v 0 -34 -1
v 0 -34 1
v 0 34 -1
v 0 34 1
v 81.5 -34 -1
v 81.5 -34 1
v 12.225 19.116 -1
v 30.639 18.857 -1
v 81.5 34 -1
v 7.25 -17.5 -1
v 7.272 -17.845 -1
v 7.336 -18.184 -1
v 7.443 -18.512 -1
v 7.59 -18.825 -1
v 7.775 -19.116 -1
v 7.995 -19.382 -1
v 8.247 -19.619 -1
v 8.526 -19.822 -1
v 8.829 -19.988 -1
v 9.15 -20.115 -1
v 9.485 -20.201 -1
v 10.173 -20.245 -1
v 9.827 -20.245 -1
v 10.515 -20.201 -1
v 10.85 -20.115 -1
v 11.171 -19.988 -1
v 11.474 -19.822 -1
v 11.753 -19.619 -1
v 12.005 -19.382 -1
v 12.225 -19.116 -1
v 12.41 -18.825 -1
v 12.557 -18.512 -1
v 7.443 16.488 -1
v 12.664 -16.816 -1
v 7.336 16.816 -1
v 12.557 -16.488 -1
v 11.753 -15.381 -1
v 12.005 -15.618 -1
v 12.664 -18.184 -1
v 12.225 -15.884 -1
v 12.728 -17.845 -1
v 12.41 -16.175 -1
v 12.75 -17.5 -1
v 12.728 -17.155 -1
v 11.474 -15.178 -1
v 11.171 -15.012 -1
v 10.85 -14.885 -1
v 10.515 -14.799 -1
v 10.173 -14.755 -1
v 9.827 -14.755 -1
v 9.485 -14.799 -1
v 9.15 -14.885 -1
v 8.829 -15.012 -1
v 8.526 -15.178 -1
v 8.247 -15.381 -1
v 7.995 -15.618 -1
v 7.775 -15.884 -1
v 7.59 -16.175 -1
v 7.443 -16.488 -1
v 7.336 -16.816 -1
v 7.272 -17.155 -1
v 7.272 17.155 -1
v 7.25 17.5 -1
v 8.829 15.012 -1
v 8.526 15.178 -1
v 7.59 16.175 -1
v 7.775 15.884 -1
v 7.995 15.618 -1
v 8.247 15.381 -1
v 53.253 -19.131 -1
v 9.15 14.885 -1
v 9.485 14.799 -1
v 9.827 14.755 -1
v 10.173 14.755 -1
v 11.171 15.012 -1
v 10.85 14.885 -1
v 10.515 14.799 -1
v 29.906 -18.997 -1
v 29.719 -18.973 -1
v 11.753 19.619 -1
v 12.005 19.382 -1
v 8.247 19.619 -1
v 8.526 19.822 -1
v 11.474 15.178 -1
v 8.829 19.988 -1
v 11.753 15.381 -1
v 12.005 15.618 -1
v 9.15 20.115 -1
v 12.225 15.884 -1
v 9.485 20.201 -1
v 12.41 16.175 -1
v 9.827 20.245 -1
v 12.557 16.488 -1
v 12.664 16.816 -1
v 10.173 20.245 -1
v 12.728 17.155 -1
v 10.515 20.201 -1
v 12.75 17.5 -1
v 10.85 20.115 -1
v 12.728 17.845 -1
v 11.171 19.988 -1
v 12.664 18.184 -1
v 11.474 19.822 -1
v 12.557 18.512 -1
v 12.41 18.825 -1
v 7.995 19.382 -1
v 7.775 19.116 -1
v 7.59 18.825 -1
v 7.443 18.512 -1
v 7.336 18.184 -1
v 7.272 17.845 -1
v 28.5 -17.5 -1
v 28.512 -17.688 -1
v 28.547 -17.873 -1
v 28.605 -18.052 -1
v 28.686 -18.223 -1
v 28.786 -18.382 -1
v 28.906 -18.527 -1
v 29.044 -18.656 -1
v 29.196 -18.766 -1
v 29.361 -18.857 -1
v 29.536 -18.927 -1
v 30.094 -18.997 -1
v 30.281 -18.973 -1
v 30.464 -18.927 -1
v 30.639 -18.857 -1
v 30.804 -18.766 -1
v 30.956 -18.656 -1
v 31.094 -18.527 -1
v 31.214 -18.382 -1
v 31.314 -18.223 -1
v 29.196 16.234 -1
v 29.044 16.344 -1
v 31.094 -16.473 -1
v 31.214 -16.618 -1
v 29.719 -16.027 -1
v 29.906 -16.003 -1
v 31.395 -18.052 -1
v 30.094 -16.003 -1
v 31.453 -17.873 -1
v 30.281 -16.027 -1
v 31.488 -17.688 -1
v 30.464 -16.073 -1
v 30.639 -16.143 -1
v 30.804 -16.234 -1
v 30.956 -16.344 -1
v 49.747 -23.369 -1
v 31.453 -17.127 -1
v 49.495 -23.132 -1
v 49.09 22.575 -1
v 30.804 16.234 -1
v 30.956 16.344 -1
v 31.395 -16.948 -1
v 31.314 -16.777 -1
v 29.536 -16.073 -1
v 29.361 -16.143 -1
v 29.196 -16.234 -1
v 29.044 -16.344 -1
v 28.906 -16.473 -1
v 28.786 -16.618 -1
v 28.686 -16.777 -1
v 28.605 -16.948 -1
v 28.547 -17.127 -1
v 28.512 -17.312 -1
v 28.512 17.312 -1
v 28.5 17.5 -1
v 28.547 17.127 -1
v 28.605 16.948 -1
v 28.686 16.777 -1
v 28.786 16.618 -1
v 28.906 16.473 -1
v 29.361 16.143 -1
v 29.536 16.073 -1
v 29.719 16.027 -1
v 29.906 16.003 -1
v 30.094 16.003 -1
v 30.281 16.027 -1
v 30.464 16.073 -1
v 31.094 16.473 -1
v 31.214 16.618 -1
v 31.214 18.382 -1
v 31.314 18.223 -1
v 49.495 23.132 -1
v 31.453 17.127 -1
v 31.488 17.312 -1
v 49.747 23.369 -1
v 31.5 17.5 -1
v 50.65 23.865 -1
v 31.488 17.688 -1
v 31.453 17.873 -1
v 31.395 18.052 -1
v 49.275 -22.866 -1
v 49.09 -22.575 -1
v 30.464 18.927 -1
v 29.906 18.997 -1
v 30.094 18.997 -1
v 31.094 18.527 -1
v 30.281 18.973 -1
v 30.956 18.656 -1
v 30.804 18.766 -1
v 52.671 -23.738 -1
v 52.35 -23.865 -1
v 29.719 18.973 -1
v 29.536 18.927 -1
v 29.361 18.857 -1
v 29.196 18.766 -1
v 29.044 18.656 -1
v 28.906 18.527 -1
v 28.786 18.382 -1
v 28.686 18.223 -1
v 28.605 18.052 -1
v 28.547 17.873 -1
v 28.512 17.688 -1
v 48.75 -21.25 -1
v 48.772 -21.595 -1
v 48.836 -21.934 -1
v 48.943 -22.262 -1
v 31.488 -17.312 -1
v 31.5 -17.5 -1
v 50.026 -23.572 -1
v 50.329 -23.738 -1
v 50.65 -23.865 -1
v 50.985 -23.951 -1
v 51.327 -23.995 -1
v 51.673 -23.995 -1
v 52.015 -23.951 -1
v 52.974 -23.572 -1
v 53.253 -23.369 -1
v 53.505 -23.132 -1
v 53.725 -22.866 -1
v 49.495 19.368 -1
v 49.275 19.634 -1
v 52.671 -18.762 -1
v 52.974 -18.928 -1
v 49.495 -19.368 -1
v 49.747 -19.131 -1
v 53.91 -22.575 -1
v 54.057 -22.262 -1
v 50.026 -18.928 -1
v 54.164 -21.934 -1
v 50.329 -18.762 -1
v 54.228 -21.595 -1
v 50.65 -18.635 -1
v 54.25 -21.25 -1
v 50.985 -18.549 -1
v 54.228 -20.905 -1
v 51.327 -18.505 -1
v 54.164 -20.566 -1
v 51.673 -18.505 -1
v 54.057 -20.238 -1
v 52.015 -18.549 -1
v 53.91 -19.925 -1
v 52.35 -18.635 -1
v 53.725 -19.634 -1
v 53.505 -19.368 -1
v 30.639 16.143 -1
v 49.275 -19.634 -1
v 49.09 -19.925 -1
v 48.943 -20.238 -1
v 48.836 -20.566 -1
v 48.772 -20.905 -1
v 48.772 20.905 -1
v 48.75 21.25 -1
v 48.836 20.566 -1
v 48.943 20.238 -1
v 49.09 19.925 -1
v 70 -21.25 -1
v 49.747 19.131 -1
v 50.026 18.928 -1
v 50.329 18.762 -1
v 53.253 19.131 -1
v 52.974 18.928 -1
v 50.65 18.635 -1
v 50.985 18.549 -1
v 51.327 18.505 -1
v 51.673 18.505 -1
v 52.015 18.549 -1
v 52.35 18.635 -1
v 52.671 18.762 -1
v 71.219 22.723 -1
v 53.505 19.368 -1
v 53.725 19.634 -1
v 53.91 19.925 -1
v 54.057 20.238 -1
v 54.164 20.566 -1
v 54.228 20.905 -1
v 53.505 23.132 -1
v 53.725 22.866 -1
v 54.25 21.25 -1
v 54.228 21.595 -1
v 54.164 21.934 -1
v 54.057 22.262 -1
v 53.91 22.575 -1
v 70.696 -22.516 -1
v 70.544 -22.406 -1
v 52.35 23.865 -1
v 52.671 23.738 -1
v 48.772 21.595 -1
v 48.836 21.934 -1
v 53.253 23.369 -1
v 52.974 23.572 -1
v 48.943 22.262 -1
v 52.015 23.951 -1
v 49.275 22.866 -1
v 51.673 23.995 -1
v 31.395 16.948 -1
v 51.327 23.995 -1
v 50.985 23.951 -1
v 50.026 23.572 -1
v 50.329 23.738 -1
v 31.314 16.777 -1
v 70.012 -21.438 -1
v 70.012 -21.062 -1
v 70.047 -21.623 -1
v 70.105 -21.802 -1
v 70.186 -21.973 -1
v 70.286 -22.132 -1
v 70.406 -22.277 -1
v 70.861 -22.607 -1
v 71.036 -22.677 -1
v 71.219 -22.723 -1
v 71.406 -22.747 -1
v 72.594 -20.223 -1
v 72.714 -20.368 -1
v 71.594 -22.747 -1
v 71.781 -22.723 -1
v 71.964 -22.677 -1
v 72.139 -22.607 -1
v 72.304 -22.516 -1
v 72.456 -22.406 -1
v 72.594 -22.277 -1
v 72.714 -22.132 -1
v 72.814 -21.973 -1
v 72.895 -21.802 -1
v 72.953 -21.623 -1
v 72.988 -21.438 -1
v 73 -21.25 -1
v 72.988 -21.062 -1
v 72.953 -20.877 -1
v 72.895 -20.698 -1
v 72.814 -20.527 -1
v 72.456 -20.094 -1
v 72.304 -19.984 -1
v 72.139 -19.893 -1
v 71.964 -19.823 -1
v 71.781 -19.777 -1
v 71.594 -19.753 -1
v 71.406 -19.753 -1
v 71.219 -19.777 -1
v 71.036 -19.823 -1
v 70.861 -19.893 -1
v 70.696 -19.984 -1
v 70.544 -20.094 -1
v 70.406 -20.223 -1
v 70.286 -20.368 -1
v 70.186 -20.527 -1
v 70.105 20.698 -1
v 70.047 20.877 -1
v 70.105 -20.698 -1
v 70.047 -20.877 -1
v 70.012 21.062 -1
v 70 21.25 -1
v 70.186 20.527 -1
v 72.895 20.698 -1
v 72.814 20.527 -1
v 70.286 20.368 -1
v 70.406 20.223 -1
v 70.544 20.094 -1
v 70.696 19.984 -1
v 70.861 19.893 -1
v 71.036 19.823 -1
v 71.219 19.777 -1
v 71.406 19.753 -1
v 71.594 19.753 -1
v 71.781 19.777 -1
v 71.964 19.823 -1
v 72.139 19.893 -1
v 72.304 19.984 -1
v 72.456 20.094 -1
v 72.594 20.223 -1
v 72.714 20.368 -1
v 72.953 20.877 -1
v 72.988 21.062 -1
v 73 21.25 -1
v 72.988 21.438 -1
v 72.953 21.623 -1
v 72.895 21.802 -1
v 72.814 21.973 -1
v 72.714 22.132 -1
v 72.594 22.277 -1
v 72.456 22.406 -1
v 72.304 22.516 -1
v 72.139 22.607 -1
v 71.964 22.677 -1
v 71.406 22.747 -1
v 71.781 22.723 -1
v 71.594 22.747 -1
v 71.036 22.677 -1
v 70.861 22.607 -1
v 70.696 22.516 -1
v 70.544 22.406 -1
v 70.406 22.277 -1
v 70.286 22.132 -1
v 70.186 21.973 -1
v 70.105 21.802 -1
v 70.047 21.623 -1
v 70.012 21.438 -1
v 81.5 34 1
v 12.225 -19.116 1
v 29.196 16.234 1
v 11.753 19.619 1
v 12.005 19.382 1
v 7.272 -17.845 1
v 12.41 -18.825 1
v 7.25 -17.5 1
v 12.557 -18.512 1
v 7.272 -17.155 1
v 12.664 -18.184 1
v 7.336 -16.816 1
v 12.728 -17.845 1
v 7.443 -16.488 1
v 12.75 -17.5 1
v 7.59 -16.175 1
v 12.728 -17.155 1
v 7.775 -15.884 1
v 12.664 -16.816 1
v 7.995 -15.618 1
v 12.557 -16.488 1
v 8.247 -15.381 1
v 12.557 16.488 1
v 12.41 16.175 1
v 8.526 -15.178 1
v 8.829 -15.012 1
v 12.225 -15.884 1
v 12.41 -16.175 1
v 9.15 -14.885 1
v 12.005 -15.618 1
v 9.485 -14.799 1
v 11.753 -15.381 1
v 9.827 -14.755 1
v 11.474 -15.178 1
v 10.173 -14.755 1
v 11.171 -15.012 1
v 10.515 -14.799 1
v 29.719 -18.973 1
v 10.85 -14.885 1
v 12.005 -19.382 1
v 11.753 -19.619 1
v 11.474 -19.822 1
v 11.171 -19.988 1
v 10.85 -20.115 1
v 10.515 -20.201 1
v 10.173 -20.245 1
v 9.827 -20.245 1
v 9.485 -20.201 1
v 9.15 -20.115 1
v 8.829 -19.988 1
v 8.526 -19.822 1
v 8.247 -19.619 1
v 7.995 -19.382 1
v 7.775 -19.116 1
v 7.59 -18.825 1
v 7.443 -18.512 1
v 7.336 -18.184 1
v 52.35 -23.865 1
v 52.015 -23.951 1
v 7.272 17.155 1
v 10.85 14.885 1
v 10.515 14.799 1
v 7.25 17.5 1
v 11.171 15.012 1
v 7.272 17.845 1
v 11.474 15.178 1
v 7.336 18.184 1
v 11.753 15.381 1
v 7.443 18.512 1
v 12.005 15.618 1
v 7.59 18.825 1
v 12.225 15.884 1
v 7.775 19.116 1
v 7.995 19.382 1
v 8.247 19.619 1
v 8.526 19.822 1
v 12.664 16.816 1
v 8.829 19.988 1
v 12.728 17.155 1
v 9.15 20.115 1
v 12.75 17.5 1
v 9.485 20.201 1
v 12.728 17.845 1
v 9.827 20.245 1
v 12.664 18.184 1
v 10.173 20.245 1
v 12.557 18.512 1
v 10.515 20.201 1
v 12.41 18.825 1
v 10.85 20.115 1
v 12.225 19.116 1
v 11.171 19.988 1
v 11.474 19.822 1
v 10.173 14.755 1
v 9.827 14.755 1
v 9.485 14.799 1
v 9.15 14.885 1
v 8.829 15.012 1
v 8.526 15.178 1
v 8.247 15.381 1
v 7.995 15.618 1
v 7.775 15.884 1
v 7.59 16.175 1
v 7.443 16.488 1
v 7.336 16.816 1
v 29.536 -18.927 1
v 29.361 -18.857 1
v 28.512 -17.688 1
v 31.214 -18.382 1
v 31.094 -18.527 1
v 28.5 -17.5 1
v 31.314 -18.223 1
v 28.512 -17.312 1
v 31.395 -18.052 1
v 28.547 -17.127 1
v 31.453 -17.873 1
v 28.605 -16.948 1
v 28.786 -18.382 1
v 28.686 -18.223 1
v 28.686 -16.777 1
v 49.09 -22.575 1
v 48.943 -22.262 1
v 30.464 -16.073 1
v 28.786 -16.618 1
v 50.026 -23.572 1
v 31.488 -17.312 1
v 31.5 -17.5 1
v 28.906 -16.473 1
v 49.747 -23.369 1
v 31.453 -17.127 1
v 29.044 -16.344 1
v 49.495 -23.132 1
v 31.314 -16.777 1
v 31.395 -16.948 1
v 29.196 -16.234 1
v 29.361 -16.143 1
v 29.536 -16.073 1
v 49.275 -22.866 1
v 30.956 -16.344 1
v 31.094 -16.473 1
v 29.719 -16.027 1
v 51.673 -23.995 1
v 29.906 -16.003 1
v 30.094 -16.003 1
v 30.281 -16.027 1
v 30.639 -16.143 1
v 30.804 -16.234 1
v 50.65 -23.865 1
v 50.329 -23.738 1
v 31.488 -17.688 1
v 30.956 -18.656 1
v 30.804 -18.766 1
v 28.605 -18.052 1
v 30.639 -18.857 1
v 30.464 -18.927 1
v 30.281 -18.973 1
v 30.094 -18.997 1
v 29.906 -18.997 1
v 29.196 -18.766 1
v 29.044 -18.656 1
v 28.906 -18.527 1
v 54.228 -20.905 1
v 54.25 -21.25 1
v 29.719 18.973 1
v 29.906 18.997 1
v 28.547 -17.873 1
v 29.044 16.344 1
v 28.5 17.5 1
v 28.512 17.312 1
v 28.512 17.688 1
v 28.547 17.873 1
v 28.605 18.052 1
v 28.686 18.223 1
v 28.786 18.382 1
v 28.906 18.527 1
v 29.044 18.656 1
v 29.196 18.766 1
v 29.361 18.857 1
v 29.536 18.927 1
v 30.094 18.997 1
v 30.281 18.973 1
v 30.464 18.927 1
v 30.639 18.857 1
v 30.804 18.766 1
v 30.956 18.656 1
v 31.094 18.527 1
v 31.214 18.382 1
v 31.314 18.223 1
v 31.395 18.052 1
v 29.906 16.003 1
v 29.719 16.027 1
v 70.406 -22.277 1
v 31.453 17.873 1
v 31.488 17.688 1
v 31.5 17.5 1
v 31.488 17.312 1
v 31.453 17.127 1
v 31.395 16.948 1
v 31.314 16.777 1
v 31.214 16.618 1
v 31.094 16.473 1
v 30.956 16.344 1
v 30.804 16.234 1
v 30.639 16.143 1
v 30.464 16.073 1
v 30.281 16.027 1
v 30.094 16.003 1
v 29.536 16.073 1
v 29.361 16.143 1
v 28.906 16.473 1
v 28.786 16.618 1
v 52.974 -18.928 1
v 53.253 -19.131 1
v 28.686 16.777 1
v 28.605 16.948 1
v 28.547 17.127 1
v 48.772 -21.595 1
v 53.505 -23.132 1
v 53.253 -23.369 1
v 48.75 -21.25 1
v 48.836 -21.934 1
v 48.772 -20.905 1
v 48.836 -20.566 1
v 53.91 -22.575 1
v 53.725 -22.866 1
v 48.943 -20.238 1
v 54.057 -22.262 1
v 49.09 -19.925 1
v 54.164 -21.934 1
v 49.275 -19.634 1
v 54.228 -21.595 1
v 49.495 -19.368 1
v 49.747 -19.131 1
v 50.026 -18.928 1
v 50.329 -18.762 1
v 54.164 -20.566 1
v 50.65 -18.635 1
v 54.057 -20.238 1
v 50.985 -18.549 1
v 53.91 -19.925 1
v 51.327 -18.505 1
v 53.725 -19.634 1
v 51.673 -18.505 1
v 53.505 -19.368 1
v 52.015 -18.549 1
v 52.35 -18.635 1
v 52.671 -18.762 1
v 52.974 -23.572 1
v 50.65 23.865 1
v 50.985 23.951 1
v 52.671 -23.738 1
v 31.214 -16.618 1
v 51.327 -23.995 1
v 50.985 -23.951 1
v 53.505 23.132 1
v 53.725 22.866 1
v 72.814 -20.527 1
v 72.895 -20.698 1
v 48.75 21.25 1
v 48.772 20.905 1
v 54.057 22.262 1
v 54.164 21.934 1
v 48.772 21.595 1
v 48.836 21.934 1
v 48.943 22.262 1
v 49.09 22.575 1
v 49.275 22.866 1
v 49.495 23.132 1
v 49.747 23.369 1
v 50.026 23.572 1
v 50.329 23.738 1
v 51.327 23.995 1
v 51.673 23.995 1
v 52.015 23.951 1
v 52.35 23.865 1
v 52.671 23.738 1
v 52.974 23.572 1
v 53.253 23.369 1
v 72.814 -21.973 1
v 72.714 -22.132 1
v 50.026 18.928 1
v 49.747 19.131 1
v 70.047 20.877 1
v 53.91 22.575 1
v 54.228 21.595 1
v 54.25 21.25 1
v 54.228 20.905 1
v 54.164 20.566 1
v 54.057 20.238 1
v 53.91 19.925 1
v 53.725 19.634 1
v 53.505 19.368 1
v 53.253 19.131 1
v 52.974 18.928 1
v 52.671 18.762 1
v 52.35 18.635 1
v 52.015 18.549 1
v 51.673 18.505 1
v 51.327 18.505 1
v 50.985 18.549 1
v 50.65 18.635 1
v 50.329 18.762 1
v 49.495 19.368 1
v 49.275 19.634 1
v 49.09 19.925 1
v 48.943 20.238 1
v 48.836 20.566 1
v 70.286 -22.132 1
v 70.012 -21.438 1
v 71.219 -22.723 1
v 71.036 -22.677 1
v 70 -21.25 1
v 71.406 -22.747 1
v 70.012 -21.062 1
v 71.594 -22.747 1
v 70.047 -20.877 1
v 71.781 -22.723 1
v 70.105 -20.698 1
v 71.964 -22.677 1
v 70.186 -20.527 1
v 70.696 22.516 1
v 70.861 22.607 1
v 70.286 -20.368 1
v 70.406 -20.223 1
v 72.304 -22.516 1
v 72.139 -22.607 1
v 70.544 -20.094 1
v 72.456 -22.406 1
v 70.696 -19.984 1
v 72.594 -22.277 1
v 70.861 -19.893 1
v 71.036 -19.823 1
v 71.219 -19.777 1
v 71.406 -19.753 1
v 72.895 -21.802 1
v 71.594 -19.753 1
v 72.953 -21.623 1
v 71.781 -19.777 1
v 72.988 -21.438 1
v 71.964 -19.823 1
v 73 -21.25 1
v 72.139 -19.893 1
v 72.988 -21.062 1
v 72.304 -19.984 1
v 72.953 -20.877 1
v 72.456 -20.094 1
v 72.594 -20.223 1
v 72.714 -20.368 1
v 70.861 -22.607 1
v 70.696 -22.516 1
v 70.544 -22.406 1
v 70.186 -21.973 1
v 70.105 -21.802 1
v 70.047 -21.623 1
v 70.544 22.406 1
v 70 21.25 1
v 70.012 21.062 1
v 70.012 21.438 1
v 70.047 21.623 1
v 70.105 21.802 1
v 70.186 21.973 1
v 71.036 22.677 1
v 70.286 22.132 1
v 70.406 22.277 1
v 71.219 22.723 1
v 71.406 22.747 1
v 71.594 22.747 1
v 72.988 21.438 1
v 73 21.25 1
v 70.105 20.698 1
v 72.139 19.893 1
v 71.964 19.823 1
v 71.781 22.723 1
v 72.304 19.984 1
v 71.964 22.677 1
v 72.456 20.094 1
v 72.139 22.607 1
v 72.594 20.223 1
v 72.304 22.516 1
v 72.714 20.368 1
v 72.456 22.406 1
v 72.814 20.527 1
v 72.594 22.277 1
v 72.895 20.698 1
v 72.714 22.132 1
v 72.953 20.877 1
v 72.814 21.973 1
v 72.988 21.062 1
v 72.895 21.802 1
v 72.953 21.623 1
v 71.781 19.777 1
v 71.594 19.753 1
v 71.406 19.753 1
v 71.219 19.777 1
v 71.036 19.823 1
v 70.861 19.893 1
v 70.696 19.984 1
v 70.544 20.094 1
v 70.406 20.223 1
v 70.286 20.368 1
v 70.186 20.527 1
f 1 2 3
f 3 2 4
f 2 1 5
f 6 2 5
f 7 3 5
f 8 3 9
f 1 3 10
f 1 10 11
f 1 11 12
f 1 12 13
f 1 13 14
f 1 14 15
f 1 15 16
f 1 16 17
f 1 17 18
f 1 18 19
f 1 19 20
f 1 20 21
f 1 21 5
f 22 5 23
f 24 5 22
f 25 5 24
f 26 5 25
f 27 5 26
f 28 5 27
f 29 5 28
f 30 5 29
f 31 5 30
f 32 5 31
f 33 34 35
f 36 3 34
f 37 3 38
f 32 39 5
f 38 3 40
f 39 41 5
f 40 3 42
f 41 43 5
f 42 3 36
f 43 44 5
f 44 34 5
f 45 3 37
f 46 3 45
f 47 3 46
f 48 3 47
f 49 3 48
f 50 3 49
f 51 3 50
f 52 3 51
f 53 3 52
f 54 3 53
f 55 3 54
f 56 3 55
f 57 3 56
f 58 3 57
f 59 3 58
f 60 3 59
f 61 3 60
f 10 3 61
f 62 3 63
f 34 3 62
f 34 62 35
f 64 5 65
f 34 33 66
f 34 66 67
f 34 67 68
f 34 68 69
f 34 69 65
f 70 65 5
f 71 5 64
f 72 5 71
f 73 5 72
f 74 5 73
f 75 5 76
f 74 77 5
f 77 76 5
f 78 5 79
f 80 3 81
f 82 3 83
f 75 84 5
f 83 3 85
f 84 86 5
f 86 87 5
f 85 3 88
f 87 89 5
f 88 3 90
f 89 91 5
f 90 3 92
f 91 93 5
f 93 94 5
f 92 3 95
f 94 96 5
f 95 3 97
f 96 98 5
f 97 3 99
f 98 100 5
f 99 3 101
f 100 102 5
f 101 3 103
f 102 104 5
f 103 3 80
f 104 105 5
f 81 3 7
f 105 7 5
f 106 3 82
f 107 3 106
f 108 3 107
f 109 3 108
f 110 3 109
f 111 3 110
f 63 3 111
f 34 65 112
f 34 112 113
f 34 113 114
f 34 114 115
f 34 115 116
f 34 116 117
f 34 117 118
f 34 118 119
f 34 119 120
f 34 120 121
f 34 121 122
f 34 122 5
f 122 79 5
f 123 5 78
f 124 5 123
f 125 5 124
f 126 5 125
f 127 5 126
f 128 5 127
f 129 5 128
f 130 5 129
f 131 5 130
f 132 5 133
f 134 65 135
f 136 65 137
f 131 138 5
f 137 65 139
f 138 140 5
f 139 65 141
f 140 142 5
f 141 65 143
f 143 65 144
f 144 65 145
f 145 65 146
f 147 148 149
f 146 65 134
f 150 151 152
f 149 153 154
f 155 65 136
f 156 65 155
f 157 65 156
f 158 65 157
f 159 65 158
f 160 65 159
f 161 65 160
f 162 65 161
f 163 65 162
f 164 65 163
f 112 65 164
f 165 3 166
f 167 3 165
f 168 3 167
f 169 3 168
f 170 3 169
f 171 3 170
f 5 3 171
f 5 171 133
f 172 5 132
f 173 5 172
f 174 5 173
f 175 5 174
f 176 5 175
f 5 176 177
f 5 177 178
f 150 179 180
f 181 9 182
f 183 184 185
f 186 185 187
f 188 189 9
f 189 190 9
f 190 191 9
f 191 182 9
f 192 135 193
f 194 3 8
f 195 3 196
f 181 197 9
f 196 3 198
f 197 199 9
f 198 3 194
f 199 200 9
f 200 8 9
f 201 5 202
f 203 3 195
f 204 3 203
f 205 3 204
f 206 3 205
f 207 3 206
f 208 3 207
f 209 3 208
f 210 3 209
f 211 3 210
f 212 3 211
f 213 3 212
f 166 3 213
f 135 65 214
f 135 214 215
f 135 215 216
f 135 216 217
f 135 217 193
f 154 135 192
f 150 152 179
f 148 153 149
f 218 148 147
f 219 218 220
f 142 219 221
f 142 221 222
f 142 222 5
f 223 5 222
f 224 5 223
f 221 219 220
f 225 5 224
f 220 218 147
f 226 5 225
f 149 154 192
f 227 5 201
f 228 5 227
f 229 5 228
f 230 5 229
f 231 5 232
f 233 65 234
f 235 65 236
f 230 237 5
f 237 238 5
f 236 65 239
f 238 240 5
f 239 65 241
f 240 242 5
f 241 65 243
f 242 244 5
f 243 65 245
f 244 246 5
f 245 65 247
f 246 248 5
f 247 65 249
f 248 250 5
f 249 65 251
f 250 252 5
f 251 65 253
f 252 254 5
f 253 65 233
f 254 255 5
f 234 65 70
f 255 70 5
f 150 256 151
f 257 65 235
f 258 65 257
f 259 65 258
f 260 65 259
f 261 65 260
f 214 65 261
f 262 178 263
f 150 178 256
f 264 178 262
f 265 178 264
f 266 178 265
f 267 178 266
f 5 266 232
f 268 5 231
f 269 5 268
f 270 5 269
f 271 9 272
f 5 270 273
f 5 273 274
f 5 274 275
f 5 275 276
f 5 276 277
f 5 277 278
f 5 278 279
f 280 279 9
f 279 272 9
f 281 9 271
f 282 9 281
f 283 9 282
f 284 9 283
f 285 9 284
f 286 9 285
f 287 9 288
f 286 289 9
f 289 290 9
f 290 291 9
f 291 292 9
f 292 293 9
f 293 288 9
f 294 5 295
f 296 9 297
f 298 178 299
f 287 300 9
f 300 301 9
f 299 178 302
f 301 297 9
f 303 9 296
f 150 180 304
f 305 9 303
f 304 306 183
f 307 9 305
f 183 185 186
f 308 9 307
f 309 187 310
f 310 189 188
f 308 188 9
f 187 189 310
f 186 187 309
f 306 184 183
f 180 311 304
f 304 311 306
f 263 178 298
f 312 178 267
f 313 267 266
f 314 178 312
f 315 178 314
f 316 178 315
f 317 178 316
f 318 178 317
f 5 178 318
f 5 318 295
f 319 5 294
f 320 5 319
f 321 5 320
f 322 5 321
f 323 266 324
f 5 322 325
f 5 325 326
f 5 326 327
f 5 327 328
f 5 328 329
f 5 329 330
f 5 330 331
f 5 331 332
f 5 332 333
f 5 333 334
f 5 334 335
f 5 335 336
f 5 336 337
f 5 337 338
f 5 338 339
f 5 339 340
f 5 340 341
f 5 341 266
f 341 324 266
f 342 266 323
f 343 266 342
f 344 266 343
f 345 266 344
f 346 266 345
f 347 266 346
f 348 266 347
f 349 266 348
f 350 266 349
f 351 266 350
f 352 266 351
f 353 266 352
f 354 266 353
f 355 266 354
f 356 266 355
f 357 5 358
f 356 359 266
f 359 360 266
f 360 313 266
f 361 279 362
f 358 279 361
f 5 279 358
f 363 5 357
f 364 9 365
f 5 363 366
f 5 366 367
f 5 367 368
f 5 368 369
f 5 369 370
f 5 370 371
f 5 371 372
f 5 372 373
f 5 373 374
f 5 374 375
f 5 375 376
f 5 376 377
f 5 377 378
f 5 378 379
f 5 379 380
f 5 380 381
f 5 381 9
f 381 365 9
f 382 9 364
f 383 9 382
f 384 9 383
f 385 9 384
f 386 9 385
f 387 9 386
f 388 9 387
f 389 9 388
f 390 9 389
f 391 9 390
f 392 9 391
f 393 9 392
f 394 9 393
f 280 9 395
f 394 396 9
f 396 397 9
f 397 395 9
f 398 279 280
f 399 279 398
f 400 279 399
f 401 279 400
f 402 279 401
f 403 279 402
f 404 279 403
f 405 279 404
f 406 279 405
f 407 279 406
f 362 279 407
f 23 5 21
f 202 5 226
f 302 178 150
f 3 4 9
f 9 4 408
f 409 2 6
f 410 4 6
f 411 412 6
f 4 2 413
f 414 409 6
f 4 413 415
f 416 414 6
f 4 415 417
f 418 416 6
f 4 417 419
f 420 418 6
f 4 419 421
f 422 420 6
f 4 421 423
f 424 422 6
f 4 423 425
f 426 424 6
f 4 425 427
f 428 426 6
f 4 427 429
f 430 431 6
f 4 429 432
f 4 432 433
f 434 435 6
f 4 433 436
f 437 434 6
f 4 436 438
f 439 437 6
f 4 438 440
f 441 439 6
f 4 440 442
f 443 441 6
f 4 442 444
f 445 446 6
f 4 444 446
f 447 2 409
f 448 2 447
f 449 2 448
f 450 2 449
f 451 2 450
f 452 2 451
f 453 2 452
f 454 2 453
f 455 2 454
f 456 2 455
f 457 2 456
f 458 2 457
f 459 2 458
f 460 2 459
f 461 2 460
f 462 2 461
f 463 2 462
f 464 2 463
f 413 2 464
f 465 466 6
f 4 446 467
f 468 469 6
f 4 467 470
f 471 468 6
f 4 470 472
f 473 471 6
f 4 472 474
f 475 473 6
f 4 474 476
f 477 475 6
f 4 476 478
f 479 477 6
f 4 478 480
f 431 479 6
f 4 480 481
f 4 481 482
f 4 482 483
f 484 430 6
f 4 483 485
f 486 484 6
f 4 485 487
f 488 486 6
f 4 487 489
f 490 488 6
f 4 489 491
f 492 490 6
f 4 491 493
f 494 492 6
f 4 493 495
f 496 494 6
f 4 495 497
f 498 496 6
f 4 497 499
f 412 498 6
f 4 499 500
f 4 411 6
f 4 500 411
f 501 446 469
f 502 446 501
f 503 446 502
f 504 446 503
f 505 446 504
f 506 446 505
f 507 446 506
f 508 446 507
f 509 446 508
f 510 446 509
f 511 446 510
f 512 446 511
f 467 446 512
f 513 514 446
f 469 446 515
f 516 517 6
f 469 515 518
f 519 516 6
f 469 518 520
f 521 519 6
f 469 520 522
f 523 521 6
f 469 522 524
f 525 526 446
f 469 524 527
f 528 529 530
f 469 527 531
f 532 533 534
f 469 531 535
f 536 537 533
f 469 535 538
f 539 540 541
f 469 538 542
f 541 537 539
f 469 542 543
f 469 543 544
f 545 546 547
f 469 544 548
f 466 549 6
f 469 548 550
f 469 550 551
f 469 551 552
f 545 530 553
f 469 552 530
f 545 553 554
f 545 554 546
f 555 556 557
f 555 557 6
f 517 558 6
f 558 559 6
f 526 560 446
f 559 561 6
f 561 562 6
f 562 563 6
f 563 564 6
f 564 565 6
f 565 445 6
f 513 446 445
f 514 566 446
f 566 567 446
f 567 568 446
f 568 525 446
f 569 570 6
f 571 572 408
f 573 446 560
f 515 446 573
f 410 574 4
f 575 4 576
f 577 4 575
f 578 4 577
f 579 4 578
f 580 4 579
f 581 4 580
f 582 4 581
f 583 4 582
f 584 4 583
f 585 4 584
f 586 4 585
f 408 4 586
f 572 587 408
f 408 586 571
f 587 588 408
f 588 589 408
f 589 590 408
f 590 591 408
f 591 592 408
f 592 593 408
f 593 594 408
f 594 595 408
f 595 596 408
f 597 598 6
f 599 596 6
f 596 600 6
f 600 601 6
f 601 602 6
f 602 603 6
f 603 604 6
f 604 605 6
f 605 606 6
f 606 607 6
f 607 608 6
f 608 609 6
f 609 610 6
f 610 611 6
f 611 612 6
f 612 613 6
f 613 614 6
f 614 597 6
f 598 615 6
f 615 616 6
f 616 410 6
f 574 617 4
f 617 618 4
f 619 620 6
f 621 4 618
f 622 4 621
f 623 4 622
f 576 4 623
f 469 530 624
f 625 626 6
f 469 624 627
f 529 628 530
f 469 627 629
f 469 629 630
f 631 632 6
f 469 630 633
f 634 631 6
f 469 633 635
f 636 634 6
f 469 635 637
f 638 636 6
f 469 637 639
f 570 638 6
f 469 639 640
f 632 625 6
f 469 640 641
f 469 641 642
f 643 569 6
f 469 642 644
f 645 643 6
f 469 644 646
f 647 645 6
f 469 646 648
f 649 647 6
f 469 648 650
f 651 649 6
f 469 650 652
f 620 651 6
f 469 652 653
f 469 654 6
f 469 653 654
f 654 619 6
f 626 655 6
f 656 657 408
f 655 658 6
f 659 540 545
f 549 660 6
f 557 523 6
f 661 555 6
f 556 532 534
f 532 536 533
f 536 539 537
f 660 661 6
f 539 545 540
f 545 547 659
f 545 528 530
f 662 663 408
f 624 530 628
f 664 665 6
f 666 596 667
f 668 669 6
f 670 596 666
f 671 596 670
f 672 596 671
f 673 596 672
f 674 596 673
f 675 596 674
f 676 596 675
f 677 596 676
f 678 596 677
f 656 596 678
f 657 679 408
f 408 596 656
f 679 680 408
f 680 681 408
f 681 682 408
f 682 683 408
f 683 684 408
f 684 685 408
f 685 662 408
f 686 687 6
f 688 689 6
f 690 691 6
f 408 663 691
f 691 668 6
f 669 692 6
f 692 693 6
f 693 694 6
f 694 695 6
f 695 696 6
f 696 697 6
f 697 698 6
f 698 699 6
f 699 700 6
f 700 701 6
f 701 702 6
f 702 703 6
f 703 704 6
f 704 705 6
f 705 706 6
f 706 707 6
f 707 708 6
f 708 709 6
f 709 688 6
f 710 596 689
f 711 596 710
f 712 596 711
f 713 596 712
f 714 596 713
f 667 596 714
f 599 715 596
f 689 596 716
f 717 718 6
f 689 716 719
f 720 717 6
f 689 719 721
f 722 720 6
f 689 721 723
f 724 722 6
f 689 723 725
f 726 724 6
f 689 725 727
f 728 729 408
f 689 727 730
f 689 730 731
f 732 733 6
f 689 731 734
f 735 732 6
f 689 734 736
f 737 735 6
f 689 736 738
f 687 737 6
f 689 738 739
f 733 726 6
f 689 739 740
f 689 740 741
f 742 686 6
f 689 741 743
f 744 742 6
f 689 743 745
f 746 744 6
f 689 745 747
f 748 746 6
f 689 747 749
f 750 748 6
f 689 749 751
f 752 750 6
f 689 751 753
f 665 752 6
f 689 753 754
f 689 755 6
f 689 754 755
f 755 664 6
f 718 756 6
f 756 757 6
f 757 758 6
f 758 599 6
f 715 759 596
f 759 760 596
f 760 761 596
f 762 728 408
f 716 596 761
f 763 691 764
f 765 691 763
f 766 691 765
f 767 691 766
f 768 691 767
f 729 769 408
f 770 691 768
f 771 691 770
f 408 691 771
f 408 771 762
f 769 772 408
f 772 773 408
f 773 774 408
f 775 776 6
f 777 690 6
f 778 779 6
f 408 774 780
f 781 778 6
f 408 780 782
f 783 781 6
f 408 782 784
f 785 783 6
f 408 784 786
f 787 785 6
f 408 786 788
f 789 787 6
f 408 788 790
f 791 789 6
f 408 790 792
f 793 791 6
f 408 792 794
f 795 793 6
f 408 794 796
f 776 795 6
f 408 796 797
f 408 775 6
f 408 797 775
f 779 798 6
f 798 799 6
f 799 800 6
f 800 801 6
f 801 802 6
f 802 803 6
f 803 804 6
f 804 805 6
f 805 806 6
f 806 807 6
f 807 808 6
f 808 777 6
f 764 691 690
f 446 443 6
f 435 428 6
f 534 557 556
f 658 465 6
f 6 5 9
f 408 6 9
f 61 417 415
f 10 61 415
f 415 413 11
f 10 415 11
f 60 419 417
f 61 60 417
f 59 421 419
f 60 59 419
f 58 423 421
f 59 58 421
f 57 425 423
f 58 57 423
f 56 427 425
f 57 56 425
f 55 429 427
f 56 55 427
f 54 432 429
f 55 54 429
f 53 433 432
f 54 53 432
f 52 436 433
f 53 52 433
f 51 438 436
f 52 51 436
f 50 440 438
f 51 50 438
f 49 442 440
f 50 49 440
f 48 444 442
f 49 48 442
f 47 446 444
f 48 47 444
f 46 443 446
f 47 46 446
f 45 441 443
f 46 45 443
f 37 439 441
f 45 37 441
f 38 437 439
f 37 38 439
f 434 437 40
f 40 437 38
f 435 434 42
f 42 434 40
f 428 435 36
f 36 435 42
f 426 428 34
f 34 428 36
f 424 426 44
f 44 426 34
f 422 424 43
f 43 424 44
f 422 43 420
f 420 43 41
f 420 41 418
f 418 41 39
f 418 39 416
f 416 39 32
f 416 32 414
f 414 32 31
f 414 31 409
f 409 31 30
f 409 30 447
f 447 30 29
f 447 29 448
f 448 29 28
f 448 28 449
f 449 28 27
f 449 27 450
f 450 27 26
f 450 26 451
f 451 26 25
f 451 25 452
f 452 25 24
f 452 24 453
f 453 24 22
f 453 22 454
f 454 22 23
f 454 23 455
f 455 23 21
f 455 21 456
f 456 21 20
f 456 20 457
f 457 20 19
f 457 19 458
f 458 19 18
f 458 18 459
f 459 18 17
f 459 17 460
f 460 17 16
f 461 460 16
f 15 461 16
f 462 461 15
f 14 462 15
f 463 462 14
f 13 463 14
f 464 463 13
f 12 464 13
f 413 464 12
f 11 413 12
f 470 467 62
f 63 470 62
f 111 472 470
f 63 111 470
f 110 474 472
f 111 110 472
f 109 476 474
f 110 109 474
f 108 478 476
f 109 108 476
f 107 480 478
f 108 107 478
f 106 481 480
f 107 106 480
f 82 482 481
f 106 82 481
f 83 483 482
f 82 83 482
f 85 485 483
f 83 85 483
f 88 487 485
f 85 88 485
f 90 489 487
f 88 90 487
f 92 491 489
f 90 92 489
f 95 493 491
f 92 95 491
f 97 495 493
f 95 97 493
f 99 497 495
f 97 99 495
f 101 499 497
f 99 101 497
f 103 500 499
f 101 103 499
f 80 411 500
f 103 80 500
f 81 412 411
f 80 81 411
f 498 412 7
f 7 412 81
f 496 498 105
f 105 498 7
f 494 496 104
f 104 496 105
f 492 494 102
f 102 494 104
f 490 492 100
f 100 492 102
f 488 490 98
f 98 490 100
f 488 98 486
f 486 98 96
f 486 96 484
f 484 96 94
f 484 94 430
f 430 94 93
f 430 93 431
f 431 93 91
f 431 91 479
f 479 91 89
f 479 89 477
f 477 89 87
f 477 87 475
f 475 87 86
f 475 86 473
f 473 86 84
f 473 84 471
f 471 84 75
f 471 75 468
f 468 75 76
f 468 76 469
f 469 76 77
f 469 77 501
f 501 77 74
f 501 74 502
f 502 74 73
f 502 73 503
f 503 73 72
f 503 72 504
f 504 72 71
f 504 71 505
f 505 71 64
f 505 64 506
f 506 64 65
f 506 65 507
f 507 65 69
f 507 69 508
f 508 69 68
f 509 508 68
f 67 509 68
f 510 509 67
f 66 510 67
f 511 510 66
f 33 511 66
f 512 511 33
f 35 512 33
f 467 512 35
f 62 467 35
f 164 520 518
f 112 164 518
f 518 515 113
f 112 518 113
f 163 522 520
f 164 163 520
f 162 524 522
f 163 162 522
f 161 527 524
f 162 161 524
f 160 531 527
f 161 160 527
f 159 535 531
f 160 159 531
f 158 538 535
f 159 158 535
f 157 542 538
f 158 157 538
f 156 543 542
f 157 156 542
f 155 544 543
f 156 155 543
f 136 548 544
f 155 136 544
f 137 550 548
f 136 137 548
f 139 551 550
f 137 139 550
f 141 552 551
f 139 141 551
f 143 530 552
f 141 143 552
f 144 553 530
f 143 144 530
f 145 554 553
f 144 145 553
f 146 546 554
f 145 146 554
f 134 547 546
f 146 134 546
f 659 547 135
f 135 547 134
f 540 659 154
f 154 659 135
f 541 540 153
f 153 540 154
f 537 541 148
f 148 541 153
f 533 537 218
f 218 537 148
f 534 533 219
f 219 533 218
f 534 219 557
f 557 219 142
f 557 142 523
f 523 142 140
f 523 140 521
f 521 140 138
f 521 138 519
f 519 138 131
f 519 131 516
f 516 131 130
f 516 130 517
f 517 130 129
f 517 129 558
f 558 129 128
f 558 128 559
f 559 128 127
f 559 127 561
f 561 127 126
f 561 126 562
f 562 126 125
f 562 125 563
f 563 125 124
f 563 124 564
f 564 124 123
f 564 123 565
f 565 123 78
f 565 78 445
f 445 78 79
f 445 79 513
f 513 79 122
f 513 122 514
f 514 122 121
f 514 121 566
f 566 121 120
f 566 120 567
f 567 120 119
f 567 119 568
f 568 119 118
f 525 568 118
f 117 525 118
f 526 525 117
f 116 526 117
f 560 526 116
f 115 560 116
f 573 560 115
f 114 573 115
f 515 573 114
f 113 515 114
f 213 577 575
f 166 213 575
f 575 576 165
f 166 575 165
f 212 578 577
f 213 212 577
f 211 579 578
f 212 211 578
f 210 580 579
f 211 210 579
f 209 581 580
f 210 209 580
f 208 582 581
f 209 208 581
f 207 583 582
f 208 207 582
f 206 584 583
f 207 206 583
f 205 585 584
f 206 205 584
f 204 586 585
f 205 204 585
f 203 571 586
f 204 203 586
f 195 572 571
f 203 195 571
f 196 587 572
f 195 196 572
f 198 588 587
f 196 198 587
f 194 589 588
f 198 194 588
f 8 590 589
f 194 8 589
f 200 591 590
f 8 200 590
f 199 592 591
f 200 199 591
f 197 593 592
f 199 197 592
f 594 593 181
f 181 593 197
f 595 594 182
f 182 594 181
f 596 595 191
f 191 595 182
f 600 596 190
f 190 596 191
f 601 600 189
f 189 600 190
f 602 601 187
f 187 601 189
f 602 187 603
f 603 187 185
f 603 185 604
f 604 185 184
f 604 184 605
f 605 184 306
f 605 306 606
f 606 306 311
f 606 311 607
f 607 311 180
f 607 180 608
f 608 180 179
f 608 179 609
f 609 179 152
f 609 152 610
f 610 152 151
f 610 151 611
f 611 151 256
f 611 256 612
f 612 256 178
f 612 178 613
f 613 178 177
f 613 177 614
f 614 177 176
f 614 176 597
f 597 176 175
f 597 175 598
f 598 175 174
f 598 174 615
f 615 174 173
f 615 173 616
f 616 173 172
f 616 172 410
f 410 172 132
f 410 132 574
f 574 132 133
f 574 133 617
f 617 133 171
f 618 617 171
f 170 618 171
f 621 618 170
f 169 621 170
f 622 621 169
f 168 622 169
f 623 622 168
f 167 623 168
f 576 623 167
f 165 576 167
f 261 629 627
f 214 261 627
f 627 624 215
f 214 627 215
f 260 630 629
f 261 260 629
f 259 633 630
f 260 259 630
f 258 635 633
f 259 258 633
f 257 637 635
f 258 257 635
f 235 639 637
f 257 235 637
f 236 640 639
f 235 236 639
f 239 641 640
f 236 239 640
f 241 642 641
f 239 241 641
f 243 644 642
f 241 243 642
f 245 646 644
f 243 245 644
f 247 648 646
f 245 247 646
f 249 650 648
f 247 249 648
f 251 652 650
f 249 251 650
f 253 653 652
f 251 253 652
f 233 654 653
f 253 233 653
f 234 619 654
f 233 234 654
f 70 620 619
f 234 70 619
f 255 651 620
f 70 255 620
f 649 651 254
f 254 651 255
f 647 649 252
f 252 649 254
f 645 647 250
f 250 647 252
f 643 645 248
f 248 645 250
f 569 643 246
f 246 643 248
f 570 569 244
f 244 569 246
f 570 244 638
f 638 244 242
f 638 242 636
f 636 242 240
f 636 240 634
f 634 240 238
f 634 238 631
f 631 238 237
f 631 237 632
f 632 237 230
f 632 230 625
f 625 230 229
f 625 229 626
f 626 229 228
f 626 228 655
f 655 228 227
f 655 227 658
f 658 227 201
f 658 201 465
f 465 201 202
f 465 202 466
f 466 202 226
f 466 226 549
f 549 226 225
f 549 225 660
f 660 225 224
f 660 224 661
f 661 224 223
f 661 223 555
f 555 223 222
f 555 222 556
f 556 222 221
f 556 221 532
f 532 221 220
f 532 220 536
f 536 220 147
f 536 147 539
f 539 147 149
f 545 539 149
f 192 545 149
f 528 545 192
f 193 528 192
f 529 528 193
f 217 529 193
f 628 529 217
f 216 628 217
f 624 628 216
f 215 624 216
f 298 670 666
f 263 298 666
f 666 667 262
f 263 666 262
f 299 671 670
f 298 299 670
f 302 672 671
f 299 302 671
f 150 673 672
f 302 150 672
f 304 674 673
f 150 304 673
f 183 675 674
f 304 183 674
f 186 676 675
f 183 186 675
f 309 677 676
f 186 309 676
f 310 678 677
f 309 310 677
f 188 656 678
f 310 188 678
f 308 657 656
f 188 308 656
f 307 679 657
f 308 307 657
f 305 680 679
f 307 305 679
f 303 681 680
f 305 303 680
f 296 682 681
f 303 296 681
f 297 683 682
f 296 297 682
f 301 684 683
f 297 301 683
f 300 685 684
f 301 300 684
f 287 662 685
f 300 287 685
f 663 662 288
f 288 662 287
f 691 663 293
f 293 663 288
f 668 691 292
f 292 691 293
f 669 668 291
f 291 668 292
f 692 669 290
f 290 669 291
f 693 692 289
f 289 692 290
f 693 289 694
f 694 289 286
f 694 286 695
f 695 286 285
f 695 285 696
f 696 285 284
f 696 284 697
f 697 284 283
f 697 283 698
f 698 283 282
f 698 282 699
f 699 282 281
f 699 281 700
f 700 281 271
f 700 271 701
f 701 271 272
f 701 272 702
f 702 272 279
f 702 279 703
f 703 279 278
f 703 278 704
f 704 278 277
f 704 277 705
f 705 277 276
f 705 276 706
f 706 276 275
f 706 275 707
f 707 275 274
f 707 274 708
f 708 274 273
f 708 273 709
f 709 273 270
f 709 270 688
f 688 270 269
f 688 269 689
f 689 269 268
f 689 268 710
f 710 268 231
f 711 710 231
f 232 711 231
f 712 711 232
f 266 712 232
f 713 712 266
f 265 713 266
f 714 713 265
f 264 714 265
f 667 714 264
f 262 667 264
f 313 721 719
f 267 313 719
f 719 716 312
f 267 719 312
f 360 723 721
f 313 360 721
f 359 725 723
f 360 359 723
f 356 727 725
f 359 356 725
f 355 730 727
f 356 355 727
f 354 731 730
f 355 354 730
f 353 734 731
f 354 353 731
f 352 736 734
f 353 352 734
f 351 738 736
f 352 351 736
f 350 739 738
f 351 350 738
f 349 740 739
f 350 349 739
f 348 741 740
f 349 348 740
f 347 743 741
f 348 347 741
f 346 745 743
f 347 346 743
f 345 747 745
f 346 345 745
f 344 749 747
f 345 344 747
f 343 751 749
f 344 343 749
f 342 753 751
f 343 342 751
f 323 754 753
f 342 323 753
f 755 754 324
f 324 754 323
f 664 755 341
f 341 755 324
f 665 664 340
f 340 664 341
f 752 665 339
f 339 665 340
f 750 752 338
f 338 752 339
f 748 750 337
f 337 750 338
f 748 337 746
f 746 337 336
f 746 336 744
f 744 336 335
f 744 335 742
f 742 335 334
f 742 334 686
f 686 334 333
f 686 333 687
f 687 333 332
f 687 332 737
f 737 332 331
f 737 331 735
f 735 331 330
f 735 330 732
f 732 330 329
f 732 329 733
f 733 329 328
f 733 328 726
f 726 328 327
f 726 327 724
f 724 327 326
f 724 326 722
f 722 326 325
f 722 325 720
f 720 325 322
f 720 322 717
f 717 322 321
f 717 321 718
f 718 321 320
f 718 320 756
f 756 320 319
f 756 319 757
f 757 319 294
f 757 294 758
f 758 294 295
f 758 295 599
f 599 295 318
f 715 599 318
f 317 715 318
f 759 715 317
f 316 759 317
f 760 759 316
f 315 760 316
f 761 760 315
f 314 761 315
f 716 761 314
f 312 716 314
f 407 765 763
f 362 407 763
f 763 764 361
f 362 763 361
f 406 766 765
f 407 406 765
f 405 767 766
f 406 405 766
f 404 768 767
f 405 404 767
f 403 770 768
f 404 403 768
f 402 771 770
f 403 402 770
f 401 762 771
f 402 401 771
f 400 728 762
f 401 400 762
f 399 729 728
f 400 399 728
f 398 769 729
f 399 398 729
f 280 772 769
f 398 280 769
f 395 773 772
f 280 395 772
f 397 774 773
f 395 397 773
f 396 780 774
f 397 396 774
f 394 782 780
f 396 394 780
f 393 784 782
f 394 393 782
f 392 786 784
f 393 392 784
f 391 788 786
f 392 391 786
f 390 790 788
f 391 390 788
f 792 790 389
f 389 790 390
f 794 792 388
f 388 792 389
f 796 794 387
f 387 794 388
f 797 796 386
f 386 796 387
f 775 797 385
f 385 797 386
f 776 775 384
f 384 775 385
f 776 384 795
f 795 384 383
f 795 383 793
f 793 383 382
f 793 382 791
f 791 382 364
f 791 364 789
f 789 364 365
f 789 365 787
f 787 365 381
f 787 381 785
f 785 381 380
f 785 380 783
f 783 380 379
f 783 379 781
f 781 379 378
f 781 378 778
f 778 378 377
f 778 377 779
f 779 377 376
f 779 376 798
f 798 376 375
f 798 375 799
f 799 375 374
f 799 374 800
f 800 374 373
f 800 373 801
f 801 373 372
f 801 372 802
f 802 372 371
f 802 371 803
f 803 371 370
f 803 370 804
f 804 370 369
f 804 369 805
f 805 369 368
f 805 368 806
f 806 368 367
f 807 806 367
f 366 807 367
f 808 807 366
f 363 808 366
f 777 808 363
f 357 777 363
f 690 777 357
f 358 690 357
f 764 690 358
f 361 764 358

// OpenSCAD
// Template for the front binding of my rossignol skis

$fn = 50;

// Diameter of all holes. Note, the markings are the "New ones"
hole_diameter = 5.5; // Real is 5, but I need slightly larger because of print

marking_hole_diameter = 3.0; // Pencil marking, again, slightly larger than needed.

// There are two sets of holdes. This is the center distance between each set
front_center_distance = 42.5;
back_center_distance = 35.0;

// The distance between front and back rows
front_back_center_distance = 41.5;

// The offset for the duplicates/markings, positive is forward
offset = 20.0;

// The margin - extra printed stuff
margin = 10.0;

// Thickness
thickness = 2.0;

// Calculated
BASE_WIDTH = max( front_center_distance, back_center_distance ) + hole_diameter + 2 * margin;
BASE_LENGTH = front_back_center_distance + offset + 2 * margin;
BASE_THICKNESS = thickness;

// Cut everything from the base. Place it with y axis aligned to back row of holes
module base() {
    translate([BASE_LENGTH/2, 0, 0] ){
        cube([ BASE_LENGTH, BASE_WIDTH, BASE_THICKNESS ], center = true );
    }
}

module hole( radius ) {
    cylinder( r = radius, h = thickness * 2, center = true );
}

module hole_set( radius, offset, center_distance ) {
    translate([offset, 0, 0 ]) {
        translate([0, center_distance/2.0, 0]) {
            hole( radius );
        }
        translate([0, -center_distance/2.0, 0]) {
            hole( radius );
        }
    }
}

// Does four holes that matches the layout of the binding, but variable offset and radius.
module hole_set_simple( radius, offset ) {
    hole_set( radius, offset, back_center_distance );
    hole_set( radius, offset + front_back_center_distance, front_center_distance );
}

// main
difference() {
    base();
    hole_set_simple( hole_diameter/2.0, margin );
    hole_set_simple( marking_hole_diameter/2.0, margin + offset );
}
